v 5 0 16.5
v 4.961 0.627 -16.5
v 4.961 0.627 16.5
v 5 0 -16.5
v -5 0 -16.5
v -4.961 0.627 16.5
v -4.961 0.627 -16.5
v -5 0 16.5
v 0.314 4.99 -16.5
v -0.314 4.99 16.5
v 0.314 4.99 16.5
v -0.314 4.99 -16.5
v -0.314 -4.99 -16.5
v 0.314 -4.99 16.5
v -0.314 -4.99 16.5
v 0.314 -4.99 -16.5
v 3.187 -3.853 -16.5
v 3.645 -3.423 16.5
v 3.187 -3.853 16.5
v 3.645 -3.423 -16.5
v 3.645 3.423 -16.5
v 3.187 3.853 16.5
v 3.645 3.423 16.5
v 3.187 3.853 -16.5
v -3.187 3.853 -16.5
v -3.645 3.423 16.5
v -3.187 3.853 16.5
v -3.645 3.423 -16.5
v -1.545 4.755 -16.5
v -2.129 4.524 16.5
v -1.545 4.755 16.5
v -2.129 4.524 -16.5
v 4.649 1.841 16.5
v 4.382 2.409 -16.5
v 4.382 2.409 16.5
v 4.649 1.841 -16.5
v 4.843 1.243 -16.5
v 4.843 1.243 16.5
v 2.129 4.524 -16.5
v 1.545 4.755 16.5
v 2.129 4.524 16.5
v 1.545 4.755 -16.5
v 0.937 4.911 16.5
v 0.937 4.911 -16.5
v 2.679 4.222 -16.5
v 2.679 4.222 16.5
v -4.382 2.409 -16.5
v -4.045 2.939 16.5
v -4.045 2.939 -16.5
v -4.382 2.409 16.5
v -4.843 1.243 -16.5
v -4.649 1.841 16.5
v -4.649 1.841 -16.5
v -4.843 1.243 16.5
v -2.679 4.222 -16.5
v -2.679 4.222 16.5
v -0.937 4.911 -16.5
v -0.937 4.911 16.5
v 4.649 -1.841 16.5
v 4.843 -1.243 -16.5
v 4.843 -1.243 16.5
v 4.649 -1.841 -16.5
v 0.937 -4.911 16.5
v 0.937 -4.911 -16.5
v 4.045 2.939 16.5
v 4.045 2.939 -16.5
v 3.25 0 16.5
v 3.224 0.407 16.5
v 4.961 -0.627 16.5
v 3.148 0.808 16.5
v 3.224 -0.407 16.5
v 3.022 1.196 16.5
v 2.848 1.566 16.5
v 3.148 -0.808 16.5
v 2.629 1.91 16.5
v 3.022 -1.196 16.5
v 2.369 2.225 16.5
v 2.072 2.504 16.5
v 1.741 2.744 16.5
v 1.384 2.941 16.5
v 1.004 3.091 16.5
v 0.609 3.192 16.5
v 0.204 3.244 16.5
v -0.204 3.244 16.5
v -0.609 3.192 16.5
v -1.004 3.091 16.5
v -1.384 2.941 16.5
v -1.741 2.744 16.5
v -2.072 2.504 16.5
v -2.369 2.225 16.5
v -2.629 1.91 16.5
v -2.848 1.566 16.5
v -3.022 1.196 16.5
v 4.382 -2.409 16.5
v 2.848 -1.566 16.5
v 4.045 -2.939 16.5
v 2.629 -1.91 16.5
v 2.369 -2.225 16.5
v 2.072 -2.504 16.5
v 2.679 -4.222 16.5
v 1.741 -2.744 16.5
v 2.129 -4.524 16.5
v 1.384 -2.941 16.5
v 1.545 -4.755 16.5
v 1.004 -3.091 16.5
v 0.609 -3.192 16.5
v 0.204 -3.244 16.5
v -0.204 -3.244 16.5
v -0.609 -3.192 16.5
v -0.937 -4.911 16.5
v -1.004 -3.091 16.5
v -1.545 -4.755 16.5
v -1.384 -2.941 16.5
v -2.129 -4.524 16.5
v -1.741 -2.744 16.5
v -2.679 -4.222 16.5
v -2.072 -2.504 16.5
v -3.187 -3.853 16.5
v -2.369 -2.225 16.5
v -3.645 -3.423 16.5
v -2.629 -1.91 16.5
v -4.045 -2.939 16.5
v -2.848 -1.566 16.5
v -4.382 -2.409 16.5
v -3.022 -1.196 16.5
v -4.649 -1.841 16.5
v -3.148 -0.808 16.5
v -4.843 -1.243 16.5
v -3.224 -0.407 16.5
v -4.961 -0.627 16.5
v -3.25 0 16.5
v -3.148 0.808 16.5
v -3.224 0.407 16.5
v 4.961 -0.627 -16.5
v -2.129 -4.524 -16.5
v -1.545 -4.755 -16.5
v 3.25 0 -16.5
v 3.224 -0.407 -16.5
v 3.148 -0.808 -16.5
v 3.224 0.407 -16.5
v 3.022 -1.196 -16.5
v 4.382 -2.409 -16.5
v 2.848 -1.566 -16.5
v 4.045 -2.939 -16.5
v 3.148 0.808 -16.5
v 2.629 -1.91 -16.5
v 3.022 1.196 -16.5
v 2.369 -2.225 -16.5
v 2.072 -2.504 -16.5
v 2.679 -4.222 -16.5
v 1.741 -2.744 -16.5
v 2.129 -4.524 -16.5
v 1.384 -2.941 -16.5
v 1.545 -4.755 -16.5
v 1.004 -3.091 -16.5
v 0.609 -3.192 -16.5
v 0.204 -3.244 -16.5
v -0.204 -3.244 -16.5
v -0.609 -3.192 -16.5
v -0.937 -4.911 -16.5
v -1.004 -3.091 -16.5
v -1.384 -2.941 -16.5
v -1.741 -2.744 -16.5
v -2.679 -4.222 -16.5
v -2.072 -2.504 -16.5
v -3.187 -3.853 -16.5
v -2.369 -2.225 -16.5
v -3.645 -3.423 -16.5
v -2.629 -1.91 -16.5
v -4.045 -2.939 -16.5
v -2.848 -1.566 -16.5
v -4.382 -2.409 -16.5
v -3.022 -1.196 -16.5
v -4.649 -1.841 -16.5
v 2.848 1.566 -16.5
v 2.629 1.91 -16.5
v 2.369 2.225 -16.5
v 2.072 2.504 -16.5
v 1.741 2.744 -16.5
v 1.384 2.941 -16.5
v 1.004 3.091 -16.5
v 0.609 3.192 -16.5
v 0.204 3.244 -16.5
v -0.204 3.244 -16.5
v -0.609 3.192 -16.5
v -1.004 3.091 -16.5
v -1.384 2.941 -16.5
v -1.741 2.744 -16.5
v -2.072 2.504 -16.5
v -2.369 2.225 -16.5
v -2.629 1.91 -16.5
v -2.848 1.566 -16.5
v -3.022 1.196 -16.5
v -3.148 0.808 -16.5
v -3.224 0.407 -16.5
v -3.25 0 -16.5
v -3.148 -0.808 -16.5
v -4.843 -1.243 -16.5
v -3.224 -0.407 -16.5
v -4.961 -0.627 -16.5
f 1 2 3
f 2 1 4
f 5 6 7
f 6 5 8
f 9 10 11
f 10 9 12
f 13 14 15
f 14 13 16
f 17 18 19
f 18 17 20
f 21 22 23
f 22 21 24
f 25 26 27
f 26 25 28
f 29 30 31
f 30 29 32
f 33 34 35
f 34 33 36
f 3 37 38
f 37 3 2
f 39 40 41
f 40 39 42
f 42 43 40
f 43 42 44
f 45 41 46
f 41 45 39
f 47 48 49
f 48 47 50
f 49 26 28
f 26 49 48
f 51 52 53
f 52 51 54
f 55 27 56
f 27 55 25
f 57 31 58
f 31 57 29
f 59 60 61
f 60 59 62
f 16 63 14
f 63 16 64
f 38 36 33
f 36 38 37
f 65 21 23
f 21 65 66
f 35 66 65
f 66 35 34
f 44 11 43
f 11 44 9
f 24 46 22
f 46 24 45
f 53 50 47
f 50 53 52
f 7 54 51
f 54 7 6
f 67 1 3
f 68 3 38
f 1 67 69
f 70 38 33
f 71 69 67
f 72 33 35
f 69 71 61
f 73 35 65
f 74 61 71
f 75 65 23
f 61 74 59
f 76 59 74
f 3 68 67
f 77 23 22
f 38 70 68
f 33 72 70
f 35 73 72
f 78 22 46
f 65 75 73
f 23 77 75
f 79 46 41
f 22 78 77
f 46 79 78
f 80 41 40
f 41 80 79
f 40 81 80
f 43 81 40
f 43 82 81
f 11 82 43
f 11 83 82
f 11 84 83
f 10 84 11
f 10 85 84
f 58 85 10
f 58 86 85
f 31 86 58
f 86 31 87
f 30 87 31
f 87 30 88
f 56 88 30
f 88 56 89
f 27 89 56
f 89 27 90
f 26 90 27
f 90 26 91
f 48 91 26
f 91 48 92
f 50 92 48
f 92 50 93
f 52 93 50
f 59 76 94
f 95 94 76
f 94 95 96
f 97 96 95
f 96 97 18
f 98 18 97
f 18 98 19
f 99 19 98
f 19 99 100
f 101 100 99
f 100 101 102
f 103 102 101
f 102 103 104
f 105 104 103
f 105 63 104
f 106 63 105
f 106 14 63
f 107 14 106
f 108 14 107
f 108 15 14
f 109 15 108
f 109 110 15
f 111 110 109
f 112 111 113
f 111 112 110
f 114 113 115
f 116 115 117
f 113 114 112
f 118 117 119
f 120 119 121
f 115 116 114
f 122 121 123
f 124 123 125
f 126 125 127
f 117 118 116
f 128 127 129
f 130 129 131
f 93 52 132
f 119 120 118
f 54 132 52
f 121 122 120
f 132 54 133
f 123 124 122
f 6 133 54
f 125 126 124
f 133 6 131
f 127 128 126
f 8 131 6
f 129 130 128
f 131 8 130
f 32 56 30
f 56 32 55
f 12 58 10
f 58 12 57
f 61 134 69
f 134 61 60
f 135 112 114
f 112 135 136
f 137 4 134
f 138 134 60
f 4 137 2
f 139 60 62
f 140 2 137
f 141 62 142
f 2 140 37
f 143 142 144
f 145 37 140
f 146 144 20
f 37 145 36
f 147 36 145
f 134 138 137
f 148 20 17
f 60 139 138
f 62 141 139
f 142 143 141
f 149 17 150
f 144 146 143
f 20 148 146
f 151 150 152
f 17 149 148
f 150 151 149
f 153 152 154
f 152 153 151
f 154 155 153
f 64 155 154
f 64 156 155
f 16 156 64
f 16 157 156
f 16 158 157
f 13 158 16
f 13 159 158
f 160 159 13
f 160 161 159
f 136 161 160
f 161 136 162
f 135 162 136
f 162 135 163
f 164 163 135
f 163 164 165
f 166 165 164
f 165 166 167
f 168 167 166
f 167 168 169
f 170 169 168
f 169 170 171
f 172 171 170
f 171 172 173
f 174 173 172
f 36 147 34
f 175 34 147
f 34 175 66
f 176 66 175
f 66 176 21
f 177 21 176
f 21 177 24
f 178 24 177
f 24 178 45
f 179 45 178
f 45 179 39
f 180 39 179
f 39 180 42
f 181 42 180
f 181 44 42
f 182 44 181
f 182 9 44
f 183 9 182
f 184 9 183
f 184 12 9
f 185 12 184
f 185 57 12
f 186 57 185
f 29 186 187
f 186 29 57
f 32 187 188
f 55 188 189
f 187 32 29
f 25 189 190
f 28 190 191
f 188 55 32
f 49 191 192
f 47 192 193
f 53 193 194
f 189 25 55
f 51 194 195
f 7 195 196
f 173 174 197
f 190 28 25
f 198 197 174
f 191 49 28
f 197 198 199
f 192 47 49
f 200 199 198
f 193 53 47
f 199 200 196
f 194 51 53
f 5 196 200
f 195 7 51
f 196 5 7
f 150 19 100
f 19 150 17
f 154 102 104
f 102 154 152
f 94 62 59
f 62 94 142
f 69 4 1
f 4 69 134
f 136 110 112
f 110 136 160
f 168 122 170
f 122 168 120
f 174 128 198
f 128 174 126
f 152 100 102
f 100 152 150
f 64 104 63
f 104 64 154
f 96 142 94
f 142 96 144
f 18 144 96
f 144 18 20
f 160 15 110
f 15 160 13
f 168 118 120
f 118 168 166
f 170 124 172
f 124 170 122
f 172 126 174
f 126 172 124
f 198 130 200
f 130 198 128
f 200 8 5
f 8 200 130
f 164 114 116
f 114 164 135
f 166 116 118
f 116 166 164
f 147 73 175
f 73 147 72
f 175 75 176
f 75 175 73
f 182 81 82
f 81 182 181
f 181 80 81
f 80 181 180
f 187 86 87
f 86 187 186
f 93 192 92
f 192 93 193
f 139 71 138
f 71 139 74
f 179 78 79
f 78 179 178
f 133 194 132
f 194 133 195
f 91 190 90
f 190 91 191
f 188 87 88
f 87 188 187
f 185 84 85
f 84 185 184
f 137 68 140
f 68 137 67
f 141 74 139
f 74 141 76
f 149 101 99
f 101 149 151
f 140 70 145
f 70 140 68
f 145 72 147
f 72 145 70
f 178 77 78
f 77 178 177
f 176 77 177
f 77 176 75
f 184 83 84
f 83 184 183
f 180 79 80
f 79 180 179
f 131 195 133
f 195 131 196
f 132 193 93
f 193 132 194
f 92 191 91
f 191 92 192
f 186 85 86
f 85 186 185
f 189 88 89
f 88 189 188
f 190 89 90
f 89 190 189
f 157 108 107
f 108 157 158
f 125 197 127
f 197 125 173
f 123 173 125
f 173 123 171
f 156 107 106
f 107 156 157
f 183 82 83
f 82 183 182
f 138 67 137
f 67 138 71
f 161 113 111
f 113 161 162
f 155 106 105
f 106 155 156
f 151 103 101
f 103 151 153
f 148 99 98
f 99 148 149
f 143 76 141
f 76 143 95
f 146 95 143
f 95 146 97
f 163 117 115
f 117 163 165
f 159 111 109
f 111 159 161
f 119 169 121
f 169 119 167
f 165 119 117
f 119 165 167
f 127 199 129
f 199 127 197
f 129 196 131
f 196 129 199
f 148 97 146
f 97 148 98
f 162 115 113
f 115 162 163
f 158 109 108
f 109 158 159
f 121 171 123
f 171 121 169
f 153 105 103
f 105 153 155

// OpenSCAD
$fn = 50;


difference() {
	union() {
		translate(v = [0, 0, -16.5000000000]) {
			cylinder(h = 33, r = 5.0000000000);
		}
	}
	union() {
		translate(v = [0, 0, -100.0000000000]) {
			cylinder(h = 200, r = 3.2500000000);
		}
	}
}
